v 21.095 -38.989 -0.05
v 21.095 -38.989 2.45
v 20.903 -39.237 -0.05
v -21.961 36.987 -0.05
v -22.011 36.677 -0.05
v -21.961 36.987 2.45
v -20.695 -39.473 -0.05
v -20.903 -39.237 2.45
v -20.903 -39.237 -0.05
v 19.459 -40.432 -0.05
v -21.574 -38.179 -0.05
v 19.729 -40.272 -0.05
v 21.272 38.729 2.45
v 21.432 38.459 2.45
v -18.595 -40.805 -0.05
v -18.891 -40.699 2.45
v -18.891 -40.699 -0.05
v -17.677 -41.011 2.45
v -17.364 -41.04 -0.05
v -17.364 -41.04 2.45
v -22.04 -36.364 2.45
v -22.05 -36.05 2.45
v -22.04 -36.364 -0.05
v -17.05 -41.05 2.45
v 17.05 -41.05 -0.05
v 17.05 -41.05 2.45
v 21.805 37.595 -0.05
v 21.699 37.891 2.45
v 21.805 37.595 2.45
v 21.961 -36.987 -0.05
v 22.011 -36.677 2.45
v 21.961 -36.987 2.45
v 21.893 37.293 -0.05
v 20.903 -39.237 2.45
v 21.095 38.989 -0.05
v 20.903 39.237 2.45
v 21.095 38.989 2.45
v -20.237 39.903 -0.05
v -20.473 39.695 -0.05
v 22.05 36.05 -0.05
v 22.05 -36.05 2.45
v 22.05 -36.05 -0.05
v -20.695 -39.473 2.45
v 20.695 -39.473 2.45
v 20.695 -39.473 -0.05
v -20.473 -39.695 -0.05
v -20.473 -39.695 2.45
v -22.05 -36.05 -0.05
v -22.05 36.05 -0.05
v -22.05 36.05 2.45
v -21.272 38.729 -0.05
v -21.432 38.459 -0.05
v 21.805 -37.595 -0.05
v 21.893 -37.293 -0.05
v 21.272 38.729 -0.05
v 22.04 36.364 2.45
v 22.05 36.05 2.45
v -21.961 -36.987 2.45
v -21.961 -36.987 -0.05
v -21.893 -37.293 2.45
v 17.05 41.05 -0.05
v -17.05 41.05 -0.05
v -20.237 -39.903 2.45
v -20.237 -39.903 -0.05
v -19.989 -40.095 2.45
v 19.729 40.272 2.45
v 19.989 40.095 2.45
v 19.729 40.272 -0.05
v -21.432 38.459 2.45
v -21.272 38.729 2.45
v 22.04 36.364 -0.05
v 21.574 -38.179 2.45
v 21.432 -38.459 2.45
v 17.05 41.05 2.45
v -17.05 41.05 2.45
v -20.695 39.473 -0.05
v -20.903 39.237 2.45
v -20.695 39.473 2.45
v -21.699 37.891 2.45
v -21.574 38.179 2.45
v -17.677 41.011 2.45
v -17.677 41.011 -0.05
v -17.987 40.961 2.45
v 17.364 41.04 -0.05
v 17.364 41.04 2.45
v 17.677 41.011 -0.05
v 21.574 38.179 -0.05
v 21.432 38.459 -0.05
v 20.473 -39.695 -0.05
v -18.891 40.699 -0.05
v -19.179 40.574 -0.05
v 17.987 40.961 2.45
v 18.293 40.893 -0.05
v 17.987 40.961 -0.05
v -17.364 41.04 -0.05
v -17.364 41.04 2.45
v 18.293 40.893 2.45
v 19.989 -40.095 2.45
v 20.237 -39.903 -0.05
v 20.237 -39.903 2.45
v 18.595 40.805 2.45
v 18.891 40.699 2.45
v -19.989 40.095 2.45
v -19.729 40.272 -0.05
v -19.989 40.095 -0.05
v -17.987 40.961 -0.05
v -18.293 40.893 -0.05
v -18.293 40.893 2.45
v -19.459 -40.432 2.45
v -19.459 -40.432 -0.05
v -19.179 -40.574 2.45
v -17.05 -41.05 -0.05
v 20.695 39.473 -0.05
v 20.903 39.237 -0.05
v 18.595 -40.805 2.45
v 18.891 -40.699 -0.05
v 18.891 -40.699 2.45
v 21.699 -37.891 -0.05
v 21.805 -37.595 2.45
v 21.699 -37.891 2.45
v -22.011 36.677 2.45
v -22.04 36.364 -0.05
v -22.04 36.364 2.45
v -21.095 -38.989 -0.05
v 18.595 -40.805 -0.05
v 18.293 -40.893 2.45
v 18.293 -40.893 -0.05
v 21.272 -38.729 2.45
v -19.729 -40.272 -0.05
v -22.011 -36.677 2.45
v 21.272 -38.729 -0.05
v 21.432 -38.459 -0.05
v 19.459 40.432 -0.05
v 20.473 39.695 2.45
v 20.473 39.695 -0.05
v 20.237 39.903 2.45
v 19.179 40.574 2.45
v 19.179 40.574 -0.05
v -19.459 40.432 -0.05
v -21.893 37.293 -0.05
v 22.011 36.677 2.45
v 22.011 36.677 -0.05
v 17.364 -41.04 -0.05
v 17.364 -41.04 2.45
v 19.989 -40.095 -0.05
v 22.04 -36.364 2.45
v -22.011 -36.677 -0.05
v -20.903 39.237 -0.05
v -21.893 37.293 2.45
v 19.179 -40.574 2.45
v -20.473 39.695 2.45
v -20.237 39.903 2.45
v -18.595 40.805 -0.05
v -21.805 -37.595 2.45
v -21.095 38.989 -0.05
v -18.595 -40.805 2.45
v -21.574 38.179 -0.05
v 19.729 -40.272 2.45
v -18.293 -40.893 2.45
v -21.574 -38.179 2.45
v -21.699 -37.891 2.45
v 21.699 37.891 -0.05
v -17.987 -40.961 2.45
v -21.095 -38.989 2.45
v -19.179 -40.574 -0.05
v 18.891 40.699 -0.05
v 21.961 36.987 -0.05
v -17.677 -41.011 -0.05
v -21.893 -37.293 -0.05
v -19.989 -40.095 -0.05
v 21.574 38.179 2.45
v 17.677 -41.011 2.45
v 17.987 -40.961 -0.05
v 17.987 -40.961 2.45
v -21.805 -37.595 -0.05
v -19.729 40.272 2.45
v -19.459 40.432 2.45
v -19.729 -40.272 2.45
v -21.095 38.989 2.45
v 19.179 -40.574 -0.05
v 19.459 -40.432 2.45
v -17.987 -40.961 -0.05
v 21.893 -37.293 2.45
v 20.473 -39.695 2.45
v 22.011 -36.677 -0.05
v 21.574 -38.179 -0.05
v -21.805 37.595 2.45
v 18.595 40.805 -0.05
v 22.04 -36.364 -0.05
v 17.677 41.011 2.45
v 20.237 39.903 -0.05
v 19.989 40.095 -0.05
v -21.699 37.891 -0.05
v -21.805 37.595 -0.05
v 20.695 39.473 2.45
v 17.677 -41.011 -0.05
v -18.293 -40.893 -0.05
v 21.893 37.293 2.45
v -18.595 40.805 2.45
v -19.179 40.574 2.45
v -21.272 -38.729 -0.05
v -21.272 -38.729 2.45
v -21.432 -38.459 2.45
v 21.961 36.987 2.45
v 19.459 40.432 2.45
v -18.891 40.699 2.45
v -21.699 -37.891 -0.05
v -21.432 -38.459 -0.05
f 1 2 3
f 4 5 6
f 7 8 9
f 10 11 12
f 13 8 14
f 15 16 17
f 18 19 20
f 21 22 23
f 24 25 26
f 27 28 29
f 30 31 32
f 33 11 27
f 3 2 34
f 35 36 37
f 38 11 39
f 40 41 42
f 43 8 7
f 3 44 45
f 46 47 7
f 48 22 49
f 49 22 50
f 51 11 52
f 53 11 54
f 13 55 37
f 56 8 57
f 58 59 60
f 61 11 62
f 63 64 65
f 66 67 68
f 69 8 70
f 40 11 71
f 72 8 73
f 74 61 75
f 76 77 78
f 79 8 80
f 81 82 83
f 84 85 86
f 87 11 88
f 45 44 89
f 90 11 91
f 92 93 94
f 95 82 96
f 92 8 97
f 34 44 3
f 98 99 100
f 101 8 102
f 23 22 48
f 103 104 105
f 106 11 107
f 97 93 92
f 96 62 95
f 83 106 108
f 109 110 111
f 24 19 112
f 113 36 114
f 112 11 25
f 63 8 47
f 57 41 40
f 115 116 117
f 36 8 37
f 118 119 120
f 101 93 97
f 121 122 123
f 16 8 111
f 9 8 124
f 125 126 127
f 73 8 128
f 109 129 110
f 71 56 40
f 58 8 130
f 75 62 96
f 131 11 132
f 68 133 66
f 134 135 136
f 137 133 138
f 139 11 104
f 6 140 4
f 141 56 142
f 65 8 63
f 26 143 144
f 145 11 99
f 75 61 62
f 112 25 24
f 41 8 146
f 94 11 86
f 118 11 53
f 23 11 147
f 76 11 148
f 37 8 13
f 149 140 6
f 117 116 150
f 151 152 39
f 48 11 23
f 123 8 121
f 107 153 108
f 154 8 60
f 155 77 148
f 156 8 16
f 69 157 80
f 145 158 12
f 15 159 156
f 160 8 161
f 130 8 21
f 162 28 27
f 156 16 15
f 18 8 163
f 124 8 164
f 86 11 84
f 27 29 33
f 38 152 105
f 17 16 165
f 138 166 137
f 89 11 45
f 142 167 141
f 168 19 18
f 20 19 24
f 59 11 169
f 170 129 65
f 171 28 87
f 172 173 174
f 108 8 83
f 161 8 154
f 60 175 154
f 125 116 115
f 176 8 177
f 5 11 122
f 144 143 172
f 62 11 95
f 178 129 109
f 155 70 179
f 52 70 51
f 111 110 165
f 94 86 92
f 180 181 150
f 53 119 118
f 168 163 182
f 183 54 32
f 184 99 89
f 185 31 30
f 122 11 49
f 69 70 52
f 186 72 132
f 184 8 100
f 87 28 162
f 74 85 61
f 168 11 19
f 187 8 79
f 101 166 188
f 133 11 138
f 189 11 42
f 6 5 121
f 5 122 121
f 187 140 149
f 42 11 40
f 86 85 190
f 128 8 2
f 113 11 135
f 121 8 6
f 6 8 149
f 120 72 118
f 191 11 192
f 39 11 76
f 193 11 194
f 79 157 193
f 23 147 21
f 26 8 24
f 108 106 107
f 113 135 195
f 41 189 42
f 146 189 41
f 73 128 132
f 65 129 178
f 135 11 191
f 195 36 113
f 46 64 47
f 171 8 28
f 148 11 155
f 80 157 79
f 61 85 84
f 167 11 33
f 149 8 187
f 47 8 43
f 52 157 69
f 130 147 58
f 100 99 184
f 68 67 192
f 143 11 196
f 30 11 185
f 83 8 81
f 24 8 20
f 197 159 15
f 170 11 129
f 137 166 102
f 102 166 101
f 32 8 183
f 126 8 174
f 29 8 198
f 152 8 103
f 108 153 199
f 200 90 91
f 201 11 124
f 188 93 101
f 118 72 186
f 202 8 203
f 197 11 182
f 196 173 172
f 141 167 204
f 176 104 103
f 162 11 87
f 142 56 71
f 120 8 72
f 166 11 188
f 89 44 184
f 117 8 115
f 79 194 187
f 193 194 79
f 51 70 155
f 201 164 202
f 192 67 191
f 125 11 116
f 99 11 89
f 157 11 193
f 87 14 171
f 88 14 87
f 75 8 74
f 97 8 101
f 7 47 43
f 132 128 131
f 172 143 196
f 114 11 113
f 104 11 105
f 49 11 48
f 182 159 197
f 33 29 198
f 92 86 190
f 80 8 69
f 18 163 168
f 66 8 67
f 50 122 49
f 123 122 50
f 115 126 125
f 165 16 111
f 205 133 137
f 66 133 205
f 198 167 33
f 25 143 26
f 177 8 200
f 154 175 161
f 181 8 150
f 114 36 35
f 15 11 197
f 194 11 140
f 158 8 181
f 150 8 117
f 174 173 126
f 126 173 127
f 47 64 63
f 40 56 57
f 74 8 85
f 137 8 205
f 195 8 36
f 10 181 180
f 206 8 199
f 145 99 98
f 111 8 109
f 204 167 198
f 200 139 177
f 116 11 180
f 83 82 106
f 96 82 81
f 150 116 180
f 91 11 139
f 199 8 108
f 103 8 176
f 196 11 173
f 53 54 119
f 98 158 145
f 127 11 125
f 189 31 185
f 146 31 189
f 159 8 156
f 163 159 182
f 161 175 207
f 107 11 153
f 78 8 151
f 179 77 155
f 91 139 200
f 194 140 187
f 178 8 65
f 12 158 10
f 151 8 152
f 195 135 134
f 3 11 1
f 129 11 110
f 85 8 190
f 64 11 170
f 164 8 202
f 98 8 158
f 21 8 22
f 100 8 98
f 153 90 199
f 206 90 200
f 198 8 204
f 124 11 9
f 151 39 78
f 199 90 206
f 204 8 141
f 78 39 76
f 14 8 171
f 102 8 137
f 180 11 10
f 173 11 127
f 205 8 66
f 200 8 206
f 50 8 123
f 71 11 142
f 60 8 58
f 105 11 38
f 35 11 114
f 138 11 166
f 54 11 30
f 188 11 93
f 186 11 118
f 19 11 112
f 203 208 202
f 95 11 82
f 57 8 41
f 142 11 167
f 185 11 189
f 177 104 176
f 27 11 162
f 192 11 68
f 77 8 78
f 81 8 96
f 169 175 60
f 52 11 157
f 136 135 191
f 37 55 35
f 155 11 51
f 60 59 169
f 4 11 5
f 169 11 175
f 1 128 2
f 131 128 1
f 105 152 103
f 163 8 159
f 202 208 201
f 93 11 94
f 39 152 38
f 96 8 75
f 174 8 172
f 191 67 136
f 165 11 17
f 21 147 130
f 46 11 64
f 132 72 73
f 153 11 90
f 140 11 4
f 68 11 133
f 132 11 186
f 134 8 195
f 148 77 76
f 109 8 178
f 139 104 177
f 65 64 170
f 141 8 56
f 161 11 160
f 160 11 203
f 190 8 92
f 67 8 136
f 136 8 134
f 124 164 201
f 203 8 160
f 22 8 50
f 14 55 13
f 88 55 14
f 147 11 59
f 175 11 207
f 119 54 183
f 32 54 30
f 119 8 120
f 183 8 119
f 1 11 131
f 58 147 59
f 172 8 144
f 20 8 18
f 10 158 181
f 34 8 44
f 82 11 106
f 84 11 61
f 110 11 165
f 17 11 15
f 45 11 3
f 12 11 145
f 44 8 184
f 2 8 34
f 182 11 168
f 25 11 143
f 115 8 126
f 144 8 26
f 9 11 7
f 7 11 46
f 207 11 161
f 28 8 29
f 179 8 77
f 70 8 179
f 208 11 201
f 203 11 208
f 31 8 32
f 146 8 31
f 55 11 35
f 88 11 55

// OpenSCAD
$vpr = [55, 0, 234];
$vpt = [25, -15, -20];
$vpd = 343;


/*//////////////////////////////////////////////////////////////////
              -    FB Aka Heartman/Hearty 2016     -                   
              -   http://heartygfx.blogspot.com    -                  
              -       OpenScad Parametric Box      -                     
              -         CC BY-NC 3.0 License       -                      
////////////////////////////////////////////////////////////////////                                                                                                             
12/02/2016 - Fixed minor bug 
28/02/2016 - Added holes ventilation option                    
09/03/2016 - Added PCB feet support, fixed the shell artefact on export mode. 

*/ ////////////////////////// - Info - //////////////////////////////

// All coordinates are starting as integrated circuit pins.
// From the top view :

//   CoordD           <---       CoordC
//                                 ^
//                                 ^
//                                 ^
//   CoordA           --->       CoordB

////////////////////////////////////////////////////////////////////

/////////////////////////// - Box parameters - //////////////////////

/* [Box dimensions] */
// - Longueur - Length  
Length = 135;
// - Largeur - Width
Width = 88;
// - Hauteur - Height  
Height = 50;
// - Epaisseur - Wall thickness  
Thick = 2.5; //[2:5]  

/* [Box options] */
// - DiamÃ¨tre Coin arrondi - Filet diameter  
Filet = 5; //[0.1:12] 
// - lissage de l'arrondi - Filet smoothness  
Resolution = 1; //[1:100] 
// - TolÃ©rance - Tolerance (Panel/rails gap)
m = 0.9;
// Pieds PCB - PCB feet (x4) 
PCBFeet = 0; // [0:No, 1:Yes]
// - Decorations to ventilation holes
Vent = 0; // [0:No, 1:Yes]
// - Decoration-Holes width (in mm)
Vent_width = 0;

/////////////////////////// - PCB parameters - //////////////////////

/* [PCB_Feet] */
//All dimensions are from the center foot axis

// - Coin bas gauche - Low left corner X position
PCBPosX = 0;
// - Coin bas gauche - Low left corner Y position
PCBPosY = 0;
// - Longueur PCB - PCB Length
PCBLength = 0;
// - Largeur PCB - PCB Width
PCBWidth = 0;
// - Heuteur pied - Feet height
FootHeight = 0;
// - DiamÃ¨tre pied - Foot diameter
FootDia = 0;
// - DiamÃ¨tre trou - Hole diameter
FootHole = 0;

////////////////////////////////////////////////////////////////////////
//////////////////////// <- Render Manager -> //////////////////////////
////////////////////////////////////////////////////////////////////////

/* [STL element to export] */
//Coque haut - Top shell
TShell = 0; // [0:No, 1:Yes]
//Coque bas- Bottom shell
BShell = 0; // [0:No, 1:Yes]
//Panneau avant - Front panel
FPanL = 0; // [0:No, 1:Yes]
//Panneau arriÃ¨re - Back panel  
BPanL = 1; // [0:No, 1:Yes]

/* [Hidden] */
// - Couleur coque - Shell color  
Couleur1 = "Orange";
// - Couleur panneaux - Panels color    
Couleur2 = "OrangeRed";
// Thick X 2 - making decorations thicker if it is a vent to make sure they go through shell
Dec_Thick = Vent ? Thick * 2 : Thick;
// - Depth decoration
Dec_size = Vent ? Thick * 2 : 0.8;

////////////////// - Generic rounded box - ///////////////

module RoundBox($a = Length, $b = Width, $c = Height) { // Cube bords arrondis
  $fn = Resolution;
  translate([0, Filet, Filet]) {
    minkowski() {
      cube([$a - (Length / 2), $b - (2 * Filet), $c - (2 * Filet)], center = false);
      rotate([0, 90, 0]) {
        cylinder(r = Filet, h = Length / 2, center = false);
      }
    }
  }
} // End of RoundBox Module

////////////////////////////////// - Module Coque/Shell - //////////////////////////////////         

module Coque() { //Coque - Shell  
  Thick = Thick * 2;
  difference() {
    difference() { //sides decoration
      union() {
        difference() { //soustraction de la forme centrale - Substraction Fileted box

          difference() { //soustraction cube median - Median cube slicer
            union() { //union               
              difference() { //Coque    
                RoundBox();
                translate([Thick / 2, Thick / 2, Thick / 2]) {
                  RoundBox($a = Length - Thick, $b = Width - Thick, $c = Height - Thick);
                }
              } //Fin diff Coque                            
              difference() { //largeur Rails        
                translate([Thick + m, Thick / 2, Thick / 2]) { // Rails
                  RoundBox($a = Length - ((2 * Thick) + (2 * m)), $b = Width - Thick, $c = Height - (Thick * 2));
                } //fin Rails
                translate([((Thick + m / 2) * 1.55), Thick / 2, Thick / 2 + 0.1]) { // +0.1 added to avoid the artefact
                  RoundBox($a = Length - ((Thick * 3) + 2 * m), $b = Width - Thick, $c = Height - Thick);
                }
              } //Fin largeur Rails
            } //Fin union                                   
            translate([-Thick, -Thick, Height / 2]) { // Cube Ã  soustraire
              cube([Length + 100, Width + 100, Height], center = false);
            }
          } //fin soustraction cube median - End Median cube slicer
          translate([-Thick / 2, Thick, Thick]) { // Forme de soustraction centrale 
            RoundBox($a = Length + Thick, $b = Width - Thick * 2, $c = Height - Thick);
          }
        }

        difference() { // wall fixation box legs
          union() {
            translate([3 * Thick + 5, Thick, Height / 2]) {
              rotate([90, 0, 0]) {
                $fn = 6;
                cylinder(d = 16, Thick / 2);
              }
            }

            translate([Length - ((3 * Thick) + 5), Thick, Height / 2]) {
              rotate([90, 0, 0]) {
                $fn = 6;
                cylinder(d = 16, Thick / 2);
              }
            }

          }
          translate([4, Thick + Filet, Height / 2 - 57]) {
            rotate([45, 0, 0]) {
              cube([Length, 40, 40]);
            }
          }
          translate([0, -(Thick * 1.46), Height / 2]) {
            cube([Length, Thick * 2, 10]);
          }
        } //Fin fixation box legs
      }

      union() { // outbox sides decorations

        for (i = [0: Thick: Length / 4]) {

          // Ventilation holes part code submitted by Ettie - Thanks ;) 
          translate([10 + i, -Dec_Thick + Dec_size, 1]) {
            cube([Vent_width, Dec_Thick, Height / 4]);
          }
          translate([(Length - 10) - i, -Dec_Thick + Dec_size, 1]) {
            cube([Vent_width, Dec_Thick, Height / 4]);
          }
          translate([(Length - 10) - i, Width - Dec_size, 1]) {
            cube([Vent_width, Dec_Thick, Height / 4]);
          }
          translate([10 + i, Width - Dec_size, 1]) {
            cube([Vent_width, Dec_Thick, Height / 4]);
          }

        } // fin de for
        // }
      } //fin union decoration
    } //fin difference decoration

    union() { //sides holes
      $fn = 50;
      translate([3 * Thick + 5, 20, Height / 2 + 4]) {
        rotate([90, 0, 0]) {
          cylinder(d = 2, 20);
        }
      }
      translate([Length - ((3 * Thick) + 5), 20, Height / 2 + 4]) {
        rotate([90, 0, 0]) {
          cylinder(d = 2, 20);
        }
      }
      translate([3 * Thick + 5, Width + 5, Height / 2 - 4]) {
        rotate([90, 0, 0]) {
          cylinder(d = 2, 20);
        }
      }
      translate([Length - ((3 * Thick) + 5), Width + 5, Height / 2 - 4]) {
        rotate([90, 0, 0]) {
          cylinder(d = 2, 20);
        }
      }
    } //fin de sides holes

  } //fin de difference holes
} // fin coque 

////////////////////////////// - Experiment - ///////////////////////////////////////////

/////////////////////// - Foot with base filet - /////////////////////////////
module foot(FootDia, FootHole, FootHeight) {
  Filet = 2;
  color(Couleur1)
  translate([0, 0, Filet - 1.5])
  difference() {

    difference() {
      //translate ([0,0,-Thick]){
      cylinder(d = FootDia + Filet, FootHeight - Thick, $fn = 100);
      //}
      rotate_extrude($fn = 100) {
        translate([(FootDia + Filet * 2) / 2, Filet, 0]) {
          minkowski() {
            square(10);
            circle(Filet, $fn = 100);
          }
        }
      }
    }
    cylinder(d = FootHole, FootHeight + 1, $fn = 100);
  }
} // Fin module foot

module Feet() {
  //////////////////// - PCB only visible in the preview mode - /////////////////////    
  translate([3 * Thick + 2, Thick + 5, FootHeight + (Thick / 2) - 0.5]) {

    %
    square([PCBLength + 10, PCBWidth + 10]);
    translate([PCBLength / 2, PCBWidth / 2, 0.5]) {
      color("Olive") %
        text("PCB", halign = "center", valign = "center", font = "Arial black");
    }
  } // Fin PCB 

  ////////////////////////////// - 4 Feet - //////////////////////////////////////////     
  translate([3 * Thick + 7, Thick + 10, Thick / 2]) {
    foot(FootDia, FootHole, FootHeight);
  }
  translate([(3 * Thick) + PCBLength + 7, Thick + 10, Thick / 2]) {
    foot(FootDia, FootHole, FootHeight);
  }
  translate([(3 * Thick) + PCBLength + 7, (Thick) + PCBWidth + 10, Thick / 2]) {
    foot(FootDia, FootHole, FootHeight);
  }
  translate([3 * Thick + 7, (Thick) + PCBWidth + 10, Thick / 2]) {
    foot(FootDia, FootHole, FootHeight);
  }

} // Fin du module Feet

////////////////////////////////////////////////////////////////////////
////////////////////// <- Holes Panel Manager -> ///////////////////////
////////////////////////////////////////////////////////////////////////

//                           <- Panel ->  
module Panel(Length, Width, Thick, Filet) {
  scale([0.5, 1, 1])
  minkowski() {
    cube([Thick, Width - (Thick * 2 + Filet * 2 + m), Height - (Thick * 2 + Filet * 2 + m)]);
    translate([0, Filet, Filet])
    rotate([0, 90, 0])
    cylinder(r = Filet, h = Thick, $fn = 100);
  }
}

//                          <- Circle hole -> 
// Cx=Cylinder X position | Cy=Cylinder Y position | Cdia= Cylinder dia | Cheight=Cyl height
module CylinderHole(OnOff, Cx, Cy, Cdia) {
  if (OnOff == 1)
    translate([Cx, Cy, -1])
  cylinder(d = Cdia, 10, $fn = 50);
}
//                          <- Square hole ->  
// Sx=Square X position | Sy=Square Y position | Sl= Square Length | Sw=Square Width | Filet = Round corner
module SquareHole(OnOff, Sx, Sy, Sl, Sw, Filet) {
  if (OnOff == 1)
    minkowski() {
      translate([Sx + Filet / 2, Sy + Filet / 2, -1])
      cube([Sl - Filet, Sw - Filet, 10]);
      cylinder(d = Filet, h = 10, $fn = 100);
    }
}

//                      <- Linear text panel -> 
module LText(OnOff, Tx, Ty, Font, Size, Content) {
  if (OnOff == 0)
    translate([Tx, Ty, Thick + .5])
  linear_extrude(height = 0.5) {
    text(Content, size = Size, font = Font);
  }
}
//                     <- Circular text panel->  
module CText(OnOff, Tx, Ty, Font, Size, TxtRadius, Angl, Turn, Content) {
  if (OnOff == 0) {
    Angle = -Angl / len(Content);
    translate([Tx, Ty, Thick + .5])
    for (i = [0: len(Content) - 1]) {
      rotate([0, 0, i * Angle + 90 + Turn])
      translate([0, TxtRadius, 0]) {
        linear_extrude(height = 0.5) {
          text(Content[i], font = Font, size = Size, valign = "baseline", halign = "center");
        }
      }
    }
  }
}
////////////////////// <- New module Panel -> //////////////////////
module FPanL() {
  difference() {
    color(Couleur2)
    Panel(Length, Width, Thick, Filet);

    rotate([90, 0, 90]) {
      color(Couleur2) {

        //////////////////////// <- Hole Specifications -> //////////////////////

        SquareHole(0, 20, 20, 15, 10, 1); //(On/Off, Xpos,Ypos,Length,Width,Filet)
        SquareHole(0, 40, 20, 15, 10, 1);
        SquareHole(0, 60, 20, 15, 10, 1);
        CylinderHole(0, 27, 40, 8); //(On/Off, Xpos, Ypos, Diameter)
        CylinderHole(1, 30.5, 23, 11.8);
        CylinderHole(1, 49.5, 23, 11.8);
        SquareHole(0, 20, 50, 80, 30, 3);
        CylinderHole(0, 93, 30, 10);
        SquareHole(0, 120, 20, 30, 60, 3);
        //                            <- To here -> 
      }
    }
  }

  color(Couleur1) {
    translate([-.5, 0, 0])
    rotate([90, 0, 90]) {

      //                      <- Adding text from here ->          
      LText(1, 20, 83, "Arial Black", 4, "Digital Screen"); //(On/Off, Xpos, Ypos, "Font", Size, "Text")
      LText(1, 120, 83, "Arial Black", 4, "Level");
      LText(1, 20, 11, "Arial Black", 6, "  1     2      3");
      CText(1, 93, 29, "Arial Black", 4, 10, 180, 0, "1 . 2 . 3 . 4 . 5 . 6"); //(On/Off, Xpos, Ypos, "Font", Size, Diameter, Arc(Deg), Starting Angle(Deg),"Text")
      //                            <- To here ->
    }
  }
}

/////////////////////////// <- Main part -> /////////////////////////


// Rotate & Translate for printing
// Translate - X=(Length-(1.04*Length)) Y=(-.5*Width) Z=(-.5*Height)
rotate([0,90,0]){
translate([Length-(1.04*Length),-.5*Width,-.5*Height]){


  if (TShell == 1)
    // Coque haut - Top Shell
    color(Couleur1, 1) {
      translate([0, Width, Height + 0.2]) {
        rotate([0, 180, 180]) {
          Coque();
        }
      }
    }

  if (BShell == 1)
    // Coque bas - Bottom shell
    color(Couleur1) {
      Coque();
    }

  // Pied support PCB - PCB feet
  if (PCBFeet == 1)
    // Feet
    translate([PCBPosX, PCBPosY, 0]) {
      Feet();
    }

  // Panneau avant - Front panel  <<<<<< Text and holes only on this one.
  //rotate([0,-90,-90]) 
  if (FPanL == 1)
    translate([Length - (Thick * 2 + m / 2), Thick + m / 2, Thick + m / 2])
  FPanL();

  //Panneau arriÃ¨re - Back panel
  if (BPanL == 1)
    color(Couleur2)
  translate([Thick + m / 2, Thick + m / 2, Thick + m / 2])
  Panel(Length, Width, Thick, Filet);

}
}
